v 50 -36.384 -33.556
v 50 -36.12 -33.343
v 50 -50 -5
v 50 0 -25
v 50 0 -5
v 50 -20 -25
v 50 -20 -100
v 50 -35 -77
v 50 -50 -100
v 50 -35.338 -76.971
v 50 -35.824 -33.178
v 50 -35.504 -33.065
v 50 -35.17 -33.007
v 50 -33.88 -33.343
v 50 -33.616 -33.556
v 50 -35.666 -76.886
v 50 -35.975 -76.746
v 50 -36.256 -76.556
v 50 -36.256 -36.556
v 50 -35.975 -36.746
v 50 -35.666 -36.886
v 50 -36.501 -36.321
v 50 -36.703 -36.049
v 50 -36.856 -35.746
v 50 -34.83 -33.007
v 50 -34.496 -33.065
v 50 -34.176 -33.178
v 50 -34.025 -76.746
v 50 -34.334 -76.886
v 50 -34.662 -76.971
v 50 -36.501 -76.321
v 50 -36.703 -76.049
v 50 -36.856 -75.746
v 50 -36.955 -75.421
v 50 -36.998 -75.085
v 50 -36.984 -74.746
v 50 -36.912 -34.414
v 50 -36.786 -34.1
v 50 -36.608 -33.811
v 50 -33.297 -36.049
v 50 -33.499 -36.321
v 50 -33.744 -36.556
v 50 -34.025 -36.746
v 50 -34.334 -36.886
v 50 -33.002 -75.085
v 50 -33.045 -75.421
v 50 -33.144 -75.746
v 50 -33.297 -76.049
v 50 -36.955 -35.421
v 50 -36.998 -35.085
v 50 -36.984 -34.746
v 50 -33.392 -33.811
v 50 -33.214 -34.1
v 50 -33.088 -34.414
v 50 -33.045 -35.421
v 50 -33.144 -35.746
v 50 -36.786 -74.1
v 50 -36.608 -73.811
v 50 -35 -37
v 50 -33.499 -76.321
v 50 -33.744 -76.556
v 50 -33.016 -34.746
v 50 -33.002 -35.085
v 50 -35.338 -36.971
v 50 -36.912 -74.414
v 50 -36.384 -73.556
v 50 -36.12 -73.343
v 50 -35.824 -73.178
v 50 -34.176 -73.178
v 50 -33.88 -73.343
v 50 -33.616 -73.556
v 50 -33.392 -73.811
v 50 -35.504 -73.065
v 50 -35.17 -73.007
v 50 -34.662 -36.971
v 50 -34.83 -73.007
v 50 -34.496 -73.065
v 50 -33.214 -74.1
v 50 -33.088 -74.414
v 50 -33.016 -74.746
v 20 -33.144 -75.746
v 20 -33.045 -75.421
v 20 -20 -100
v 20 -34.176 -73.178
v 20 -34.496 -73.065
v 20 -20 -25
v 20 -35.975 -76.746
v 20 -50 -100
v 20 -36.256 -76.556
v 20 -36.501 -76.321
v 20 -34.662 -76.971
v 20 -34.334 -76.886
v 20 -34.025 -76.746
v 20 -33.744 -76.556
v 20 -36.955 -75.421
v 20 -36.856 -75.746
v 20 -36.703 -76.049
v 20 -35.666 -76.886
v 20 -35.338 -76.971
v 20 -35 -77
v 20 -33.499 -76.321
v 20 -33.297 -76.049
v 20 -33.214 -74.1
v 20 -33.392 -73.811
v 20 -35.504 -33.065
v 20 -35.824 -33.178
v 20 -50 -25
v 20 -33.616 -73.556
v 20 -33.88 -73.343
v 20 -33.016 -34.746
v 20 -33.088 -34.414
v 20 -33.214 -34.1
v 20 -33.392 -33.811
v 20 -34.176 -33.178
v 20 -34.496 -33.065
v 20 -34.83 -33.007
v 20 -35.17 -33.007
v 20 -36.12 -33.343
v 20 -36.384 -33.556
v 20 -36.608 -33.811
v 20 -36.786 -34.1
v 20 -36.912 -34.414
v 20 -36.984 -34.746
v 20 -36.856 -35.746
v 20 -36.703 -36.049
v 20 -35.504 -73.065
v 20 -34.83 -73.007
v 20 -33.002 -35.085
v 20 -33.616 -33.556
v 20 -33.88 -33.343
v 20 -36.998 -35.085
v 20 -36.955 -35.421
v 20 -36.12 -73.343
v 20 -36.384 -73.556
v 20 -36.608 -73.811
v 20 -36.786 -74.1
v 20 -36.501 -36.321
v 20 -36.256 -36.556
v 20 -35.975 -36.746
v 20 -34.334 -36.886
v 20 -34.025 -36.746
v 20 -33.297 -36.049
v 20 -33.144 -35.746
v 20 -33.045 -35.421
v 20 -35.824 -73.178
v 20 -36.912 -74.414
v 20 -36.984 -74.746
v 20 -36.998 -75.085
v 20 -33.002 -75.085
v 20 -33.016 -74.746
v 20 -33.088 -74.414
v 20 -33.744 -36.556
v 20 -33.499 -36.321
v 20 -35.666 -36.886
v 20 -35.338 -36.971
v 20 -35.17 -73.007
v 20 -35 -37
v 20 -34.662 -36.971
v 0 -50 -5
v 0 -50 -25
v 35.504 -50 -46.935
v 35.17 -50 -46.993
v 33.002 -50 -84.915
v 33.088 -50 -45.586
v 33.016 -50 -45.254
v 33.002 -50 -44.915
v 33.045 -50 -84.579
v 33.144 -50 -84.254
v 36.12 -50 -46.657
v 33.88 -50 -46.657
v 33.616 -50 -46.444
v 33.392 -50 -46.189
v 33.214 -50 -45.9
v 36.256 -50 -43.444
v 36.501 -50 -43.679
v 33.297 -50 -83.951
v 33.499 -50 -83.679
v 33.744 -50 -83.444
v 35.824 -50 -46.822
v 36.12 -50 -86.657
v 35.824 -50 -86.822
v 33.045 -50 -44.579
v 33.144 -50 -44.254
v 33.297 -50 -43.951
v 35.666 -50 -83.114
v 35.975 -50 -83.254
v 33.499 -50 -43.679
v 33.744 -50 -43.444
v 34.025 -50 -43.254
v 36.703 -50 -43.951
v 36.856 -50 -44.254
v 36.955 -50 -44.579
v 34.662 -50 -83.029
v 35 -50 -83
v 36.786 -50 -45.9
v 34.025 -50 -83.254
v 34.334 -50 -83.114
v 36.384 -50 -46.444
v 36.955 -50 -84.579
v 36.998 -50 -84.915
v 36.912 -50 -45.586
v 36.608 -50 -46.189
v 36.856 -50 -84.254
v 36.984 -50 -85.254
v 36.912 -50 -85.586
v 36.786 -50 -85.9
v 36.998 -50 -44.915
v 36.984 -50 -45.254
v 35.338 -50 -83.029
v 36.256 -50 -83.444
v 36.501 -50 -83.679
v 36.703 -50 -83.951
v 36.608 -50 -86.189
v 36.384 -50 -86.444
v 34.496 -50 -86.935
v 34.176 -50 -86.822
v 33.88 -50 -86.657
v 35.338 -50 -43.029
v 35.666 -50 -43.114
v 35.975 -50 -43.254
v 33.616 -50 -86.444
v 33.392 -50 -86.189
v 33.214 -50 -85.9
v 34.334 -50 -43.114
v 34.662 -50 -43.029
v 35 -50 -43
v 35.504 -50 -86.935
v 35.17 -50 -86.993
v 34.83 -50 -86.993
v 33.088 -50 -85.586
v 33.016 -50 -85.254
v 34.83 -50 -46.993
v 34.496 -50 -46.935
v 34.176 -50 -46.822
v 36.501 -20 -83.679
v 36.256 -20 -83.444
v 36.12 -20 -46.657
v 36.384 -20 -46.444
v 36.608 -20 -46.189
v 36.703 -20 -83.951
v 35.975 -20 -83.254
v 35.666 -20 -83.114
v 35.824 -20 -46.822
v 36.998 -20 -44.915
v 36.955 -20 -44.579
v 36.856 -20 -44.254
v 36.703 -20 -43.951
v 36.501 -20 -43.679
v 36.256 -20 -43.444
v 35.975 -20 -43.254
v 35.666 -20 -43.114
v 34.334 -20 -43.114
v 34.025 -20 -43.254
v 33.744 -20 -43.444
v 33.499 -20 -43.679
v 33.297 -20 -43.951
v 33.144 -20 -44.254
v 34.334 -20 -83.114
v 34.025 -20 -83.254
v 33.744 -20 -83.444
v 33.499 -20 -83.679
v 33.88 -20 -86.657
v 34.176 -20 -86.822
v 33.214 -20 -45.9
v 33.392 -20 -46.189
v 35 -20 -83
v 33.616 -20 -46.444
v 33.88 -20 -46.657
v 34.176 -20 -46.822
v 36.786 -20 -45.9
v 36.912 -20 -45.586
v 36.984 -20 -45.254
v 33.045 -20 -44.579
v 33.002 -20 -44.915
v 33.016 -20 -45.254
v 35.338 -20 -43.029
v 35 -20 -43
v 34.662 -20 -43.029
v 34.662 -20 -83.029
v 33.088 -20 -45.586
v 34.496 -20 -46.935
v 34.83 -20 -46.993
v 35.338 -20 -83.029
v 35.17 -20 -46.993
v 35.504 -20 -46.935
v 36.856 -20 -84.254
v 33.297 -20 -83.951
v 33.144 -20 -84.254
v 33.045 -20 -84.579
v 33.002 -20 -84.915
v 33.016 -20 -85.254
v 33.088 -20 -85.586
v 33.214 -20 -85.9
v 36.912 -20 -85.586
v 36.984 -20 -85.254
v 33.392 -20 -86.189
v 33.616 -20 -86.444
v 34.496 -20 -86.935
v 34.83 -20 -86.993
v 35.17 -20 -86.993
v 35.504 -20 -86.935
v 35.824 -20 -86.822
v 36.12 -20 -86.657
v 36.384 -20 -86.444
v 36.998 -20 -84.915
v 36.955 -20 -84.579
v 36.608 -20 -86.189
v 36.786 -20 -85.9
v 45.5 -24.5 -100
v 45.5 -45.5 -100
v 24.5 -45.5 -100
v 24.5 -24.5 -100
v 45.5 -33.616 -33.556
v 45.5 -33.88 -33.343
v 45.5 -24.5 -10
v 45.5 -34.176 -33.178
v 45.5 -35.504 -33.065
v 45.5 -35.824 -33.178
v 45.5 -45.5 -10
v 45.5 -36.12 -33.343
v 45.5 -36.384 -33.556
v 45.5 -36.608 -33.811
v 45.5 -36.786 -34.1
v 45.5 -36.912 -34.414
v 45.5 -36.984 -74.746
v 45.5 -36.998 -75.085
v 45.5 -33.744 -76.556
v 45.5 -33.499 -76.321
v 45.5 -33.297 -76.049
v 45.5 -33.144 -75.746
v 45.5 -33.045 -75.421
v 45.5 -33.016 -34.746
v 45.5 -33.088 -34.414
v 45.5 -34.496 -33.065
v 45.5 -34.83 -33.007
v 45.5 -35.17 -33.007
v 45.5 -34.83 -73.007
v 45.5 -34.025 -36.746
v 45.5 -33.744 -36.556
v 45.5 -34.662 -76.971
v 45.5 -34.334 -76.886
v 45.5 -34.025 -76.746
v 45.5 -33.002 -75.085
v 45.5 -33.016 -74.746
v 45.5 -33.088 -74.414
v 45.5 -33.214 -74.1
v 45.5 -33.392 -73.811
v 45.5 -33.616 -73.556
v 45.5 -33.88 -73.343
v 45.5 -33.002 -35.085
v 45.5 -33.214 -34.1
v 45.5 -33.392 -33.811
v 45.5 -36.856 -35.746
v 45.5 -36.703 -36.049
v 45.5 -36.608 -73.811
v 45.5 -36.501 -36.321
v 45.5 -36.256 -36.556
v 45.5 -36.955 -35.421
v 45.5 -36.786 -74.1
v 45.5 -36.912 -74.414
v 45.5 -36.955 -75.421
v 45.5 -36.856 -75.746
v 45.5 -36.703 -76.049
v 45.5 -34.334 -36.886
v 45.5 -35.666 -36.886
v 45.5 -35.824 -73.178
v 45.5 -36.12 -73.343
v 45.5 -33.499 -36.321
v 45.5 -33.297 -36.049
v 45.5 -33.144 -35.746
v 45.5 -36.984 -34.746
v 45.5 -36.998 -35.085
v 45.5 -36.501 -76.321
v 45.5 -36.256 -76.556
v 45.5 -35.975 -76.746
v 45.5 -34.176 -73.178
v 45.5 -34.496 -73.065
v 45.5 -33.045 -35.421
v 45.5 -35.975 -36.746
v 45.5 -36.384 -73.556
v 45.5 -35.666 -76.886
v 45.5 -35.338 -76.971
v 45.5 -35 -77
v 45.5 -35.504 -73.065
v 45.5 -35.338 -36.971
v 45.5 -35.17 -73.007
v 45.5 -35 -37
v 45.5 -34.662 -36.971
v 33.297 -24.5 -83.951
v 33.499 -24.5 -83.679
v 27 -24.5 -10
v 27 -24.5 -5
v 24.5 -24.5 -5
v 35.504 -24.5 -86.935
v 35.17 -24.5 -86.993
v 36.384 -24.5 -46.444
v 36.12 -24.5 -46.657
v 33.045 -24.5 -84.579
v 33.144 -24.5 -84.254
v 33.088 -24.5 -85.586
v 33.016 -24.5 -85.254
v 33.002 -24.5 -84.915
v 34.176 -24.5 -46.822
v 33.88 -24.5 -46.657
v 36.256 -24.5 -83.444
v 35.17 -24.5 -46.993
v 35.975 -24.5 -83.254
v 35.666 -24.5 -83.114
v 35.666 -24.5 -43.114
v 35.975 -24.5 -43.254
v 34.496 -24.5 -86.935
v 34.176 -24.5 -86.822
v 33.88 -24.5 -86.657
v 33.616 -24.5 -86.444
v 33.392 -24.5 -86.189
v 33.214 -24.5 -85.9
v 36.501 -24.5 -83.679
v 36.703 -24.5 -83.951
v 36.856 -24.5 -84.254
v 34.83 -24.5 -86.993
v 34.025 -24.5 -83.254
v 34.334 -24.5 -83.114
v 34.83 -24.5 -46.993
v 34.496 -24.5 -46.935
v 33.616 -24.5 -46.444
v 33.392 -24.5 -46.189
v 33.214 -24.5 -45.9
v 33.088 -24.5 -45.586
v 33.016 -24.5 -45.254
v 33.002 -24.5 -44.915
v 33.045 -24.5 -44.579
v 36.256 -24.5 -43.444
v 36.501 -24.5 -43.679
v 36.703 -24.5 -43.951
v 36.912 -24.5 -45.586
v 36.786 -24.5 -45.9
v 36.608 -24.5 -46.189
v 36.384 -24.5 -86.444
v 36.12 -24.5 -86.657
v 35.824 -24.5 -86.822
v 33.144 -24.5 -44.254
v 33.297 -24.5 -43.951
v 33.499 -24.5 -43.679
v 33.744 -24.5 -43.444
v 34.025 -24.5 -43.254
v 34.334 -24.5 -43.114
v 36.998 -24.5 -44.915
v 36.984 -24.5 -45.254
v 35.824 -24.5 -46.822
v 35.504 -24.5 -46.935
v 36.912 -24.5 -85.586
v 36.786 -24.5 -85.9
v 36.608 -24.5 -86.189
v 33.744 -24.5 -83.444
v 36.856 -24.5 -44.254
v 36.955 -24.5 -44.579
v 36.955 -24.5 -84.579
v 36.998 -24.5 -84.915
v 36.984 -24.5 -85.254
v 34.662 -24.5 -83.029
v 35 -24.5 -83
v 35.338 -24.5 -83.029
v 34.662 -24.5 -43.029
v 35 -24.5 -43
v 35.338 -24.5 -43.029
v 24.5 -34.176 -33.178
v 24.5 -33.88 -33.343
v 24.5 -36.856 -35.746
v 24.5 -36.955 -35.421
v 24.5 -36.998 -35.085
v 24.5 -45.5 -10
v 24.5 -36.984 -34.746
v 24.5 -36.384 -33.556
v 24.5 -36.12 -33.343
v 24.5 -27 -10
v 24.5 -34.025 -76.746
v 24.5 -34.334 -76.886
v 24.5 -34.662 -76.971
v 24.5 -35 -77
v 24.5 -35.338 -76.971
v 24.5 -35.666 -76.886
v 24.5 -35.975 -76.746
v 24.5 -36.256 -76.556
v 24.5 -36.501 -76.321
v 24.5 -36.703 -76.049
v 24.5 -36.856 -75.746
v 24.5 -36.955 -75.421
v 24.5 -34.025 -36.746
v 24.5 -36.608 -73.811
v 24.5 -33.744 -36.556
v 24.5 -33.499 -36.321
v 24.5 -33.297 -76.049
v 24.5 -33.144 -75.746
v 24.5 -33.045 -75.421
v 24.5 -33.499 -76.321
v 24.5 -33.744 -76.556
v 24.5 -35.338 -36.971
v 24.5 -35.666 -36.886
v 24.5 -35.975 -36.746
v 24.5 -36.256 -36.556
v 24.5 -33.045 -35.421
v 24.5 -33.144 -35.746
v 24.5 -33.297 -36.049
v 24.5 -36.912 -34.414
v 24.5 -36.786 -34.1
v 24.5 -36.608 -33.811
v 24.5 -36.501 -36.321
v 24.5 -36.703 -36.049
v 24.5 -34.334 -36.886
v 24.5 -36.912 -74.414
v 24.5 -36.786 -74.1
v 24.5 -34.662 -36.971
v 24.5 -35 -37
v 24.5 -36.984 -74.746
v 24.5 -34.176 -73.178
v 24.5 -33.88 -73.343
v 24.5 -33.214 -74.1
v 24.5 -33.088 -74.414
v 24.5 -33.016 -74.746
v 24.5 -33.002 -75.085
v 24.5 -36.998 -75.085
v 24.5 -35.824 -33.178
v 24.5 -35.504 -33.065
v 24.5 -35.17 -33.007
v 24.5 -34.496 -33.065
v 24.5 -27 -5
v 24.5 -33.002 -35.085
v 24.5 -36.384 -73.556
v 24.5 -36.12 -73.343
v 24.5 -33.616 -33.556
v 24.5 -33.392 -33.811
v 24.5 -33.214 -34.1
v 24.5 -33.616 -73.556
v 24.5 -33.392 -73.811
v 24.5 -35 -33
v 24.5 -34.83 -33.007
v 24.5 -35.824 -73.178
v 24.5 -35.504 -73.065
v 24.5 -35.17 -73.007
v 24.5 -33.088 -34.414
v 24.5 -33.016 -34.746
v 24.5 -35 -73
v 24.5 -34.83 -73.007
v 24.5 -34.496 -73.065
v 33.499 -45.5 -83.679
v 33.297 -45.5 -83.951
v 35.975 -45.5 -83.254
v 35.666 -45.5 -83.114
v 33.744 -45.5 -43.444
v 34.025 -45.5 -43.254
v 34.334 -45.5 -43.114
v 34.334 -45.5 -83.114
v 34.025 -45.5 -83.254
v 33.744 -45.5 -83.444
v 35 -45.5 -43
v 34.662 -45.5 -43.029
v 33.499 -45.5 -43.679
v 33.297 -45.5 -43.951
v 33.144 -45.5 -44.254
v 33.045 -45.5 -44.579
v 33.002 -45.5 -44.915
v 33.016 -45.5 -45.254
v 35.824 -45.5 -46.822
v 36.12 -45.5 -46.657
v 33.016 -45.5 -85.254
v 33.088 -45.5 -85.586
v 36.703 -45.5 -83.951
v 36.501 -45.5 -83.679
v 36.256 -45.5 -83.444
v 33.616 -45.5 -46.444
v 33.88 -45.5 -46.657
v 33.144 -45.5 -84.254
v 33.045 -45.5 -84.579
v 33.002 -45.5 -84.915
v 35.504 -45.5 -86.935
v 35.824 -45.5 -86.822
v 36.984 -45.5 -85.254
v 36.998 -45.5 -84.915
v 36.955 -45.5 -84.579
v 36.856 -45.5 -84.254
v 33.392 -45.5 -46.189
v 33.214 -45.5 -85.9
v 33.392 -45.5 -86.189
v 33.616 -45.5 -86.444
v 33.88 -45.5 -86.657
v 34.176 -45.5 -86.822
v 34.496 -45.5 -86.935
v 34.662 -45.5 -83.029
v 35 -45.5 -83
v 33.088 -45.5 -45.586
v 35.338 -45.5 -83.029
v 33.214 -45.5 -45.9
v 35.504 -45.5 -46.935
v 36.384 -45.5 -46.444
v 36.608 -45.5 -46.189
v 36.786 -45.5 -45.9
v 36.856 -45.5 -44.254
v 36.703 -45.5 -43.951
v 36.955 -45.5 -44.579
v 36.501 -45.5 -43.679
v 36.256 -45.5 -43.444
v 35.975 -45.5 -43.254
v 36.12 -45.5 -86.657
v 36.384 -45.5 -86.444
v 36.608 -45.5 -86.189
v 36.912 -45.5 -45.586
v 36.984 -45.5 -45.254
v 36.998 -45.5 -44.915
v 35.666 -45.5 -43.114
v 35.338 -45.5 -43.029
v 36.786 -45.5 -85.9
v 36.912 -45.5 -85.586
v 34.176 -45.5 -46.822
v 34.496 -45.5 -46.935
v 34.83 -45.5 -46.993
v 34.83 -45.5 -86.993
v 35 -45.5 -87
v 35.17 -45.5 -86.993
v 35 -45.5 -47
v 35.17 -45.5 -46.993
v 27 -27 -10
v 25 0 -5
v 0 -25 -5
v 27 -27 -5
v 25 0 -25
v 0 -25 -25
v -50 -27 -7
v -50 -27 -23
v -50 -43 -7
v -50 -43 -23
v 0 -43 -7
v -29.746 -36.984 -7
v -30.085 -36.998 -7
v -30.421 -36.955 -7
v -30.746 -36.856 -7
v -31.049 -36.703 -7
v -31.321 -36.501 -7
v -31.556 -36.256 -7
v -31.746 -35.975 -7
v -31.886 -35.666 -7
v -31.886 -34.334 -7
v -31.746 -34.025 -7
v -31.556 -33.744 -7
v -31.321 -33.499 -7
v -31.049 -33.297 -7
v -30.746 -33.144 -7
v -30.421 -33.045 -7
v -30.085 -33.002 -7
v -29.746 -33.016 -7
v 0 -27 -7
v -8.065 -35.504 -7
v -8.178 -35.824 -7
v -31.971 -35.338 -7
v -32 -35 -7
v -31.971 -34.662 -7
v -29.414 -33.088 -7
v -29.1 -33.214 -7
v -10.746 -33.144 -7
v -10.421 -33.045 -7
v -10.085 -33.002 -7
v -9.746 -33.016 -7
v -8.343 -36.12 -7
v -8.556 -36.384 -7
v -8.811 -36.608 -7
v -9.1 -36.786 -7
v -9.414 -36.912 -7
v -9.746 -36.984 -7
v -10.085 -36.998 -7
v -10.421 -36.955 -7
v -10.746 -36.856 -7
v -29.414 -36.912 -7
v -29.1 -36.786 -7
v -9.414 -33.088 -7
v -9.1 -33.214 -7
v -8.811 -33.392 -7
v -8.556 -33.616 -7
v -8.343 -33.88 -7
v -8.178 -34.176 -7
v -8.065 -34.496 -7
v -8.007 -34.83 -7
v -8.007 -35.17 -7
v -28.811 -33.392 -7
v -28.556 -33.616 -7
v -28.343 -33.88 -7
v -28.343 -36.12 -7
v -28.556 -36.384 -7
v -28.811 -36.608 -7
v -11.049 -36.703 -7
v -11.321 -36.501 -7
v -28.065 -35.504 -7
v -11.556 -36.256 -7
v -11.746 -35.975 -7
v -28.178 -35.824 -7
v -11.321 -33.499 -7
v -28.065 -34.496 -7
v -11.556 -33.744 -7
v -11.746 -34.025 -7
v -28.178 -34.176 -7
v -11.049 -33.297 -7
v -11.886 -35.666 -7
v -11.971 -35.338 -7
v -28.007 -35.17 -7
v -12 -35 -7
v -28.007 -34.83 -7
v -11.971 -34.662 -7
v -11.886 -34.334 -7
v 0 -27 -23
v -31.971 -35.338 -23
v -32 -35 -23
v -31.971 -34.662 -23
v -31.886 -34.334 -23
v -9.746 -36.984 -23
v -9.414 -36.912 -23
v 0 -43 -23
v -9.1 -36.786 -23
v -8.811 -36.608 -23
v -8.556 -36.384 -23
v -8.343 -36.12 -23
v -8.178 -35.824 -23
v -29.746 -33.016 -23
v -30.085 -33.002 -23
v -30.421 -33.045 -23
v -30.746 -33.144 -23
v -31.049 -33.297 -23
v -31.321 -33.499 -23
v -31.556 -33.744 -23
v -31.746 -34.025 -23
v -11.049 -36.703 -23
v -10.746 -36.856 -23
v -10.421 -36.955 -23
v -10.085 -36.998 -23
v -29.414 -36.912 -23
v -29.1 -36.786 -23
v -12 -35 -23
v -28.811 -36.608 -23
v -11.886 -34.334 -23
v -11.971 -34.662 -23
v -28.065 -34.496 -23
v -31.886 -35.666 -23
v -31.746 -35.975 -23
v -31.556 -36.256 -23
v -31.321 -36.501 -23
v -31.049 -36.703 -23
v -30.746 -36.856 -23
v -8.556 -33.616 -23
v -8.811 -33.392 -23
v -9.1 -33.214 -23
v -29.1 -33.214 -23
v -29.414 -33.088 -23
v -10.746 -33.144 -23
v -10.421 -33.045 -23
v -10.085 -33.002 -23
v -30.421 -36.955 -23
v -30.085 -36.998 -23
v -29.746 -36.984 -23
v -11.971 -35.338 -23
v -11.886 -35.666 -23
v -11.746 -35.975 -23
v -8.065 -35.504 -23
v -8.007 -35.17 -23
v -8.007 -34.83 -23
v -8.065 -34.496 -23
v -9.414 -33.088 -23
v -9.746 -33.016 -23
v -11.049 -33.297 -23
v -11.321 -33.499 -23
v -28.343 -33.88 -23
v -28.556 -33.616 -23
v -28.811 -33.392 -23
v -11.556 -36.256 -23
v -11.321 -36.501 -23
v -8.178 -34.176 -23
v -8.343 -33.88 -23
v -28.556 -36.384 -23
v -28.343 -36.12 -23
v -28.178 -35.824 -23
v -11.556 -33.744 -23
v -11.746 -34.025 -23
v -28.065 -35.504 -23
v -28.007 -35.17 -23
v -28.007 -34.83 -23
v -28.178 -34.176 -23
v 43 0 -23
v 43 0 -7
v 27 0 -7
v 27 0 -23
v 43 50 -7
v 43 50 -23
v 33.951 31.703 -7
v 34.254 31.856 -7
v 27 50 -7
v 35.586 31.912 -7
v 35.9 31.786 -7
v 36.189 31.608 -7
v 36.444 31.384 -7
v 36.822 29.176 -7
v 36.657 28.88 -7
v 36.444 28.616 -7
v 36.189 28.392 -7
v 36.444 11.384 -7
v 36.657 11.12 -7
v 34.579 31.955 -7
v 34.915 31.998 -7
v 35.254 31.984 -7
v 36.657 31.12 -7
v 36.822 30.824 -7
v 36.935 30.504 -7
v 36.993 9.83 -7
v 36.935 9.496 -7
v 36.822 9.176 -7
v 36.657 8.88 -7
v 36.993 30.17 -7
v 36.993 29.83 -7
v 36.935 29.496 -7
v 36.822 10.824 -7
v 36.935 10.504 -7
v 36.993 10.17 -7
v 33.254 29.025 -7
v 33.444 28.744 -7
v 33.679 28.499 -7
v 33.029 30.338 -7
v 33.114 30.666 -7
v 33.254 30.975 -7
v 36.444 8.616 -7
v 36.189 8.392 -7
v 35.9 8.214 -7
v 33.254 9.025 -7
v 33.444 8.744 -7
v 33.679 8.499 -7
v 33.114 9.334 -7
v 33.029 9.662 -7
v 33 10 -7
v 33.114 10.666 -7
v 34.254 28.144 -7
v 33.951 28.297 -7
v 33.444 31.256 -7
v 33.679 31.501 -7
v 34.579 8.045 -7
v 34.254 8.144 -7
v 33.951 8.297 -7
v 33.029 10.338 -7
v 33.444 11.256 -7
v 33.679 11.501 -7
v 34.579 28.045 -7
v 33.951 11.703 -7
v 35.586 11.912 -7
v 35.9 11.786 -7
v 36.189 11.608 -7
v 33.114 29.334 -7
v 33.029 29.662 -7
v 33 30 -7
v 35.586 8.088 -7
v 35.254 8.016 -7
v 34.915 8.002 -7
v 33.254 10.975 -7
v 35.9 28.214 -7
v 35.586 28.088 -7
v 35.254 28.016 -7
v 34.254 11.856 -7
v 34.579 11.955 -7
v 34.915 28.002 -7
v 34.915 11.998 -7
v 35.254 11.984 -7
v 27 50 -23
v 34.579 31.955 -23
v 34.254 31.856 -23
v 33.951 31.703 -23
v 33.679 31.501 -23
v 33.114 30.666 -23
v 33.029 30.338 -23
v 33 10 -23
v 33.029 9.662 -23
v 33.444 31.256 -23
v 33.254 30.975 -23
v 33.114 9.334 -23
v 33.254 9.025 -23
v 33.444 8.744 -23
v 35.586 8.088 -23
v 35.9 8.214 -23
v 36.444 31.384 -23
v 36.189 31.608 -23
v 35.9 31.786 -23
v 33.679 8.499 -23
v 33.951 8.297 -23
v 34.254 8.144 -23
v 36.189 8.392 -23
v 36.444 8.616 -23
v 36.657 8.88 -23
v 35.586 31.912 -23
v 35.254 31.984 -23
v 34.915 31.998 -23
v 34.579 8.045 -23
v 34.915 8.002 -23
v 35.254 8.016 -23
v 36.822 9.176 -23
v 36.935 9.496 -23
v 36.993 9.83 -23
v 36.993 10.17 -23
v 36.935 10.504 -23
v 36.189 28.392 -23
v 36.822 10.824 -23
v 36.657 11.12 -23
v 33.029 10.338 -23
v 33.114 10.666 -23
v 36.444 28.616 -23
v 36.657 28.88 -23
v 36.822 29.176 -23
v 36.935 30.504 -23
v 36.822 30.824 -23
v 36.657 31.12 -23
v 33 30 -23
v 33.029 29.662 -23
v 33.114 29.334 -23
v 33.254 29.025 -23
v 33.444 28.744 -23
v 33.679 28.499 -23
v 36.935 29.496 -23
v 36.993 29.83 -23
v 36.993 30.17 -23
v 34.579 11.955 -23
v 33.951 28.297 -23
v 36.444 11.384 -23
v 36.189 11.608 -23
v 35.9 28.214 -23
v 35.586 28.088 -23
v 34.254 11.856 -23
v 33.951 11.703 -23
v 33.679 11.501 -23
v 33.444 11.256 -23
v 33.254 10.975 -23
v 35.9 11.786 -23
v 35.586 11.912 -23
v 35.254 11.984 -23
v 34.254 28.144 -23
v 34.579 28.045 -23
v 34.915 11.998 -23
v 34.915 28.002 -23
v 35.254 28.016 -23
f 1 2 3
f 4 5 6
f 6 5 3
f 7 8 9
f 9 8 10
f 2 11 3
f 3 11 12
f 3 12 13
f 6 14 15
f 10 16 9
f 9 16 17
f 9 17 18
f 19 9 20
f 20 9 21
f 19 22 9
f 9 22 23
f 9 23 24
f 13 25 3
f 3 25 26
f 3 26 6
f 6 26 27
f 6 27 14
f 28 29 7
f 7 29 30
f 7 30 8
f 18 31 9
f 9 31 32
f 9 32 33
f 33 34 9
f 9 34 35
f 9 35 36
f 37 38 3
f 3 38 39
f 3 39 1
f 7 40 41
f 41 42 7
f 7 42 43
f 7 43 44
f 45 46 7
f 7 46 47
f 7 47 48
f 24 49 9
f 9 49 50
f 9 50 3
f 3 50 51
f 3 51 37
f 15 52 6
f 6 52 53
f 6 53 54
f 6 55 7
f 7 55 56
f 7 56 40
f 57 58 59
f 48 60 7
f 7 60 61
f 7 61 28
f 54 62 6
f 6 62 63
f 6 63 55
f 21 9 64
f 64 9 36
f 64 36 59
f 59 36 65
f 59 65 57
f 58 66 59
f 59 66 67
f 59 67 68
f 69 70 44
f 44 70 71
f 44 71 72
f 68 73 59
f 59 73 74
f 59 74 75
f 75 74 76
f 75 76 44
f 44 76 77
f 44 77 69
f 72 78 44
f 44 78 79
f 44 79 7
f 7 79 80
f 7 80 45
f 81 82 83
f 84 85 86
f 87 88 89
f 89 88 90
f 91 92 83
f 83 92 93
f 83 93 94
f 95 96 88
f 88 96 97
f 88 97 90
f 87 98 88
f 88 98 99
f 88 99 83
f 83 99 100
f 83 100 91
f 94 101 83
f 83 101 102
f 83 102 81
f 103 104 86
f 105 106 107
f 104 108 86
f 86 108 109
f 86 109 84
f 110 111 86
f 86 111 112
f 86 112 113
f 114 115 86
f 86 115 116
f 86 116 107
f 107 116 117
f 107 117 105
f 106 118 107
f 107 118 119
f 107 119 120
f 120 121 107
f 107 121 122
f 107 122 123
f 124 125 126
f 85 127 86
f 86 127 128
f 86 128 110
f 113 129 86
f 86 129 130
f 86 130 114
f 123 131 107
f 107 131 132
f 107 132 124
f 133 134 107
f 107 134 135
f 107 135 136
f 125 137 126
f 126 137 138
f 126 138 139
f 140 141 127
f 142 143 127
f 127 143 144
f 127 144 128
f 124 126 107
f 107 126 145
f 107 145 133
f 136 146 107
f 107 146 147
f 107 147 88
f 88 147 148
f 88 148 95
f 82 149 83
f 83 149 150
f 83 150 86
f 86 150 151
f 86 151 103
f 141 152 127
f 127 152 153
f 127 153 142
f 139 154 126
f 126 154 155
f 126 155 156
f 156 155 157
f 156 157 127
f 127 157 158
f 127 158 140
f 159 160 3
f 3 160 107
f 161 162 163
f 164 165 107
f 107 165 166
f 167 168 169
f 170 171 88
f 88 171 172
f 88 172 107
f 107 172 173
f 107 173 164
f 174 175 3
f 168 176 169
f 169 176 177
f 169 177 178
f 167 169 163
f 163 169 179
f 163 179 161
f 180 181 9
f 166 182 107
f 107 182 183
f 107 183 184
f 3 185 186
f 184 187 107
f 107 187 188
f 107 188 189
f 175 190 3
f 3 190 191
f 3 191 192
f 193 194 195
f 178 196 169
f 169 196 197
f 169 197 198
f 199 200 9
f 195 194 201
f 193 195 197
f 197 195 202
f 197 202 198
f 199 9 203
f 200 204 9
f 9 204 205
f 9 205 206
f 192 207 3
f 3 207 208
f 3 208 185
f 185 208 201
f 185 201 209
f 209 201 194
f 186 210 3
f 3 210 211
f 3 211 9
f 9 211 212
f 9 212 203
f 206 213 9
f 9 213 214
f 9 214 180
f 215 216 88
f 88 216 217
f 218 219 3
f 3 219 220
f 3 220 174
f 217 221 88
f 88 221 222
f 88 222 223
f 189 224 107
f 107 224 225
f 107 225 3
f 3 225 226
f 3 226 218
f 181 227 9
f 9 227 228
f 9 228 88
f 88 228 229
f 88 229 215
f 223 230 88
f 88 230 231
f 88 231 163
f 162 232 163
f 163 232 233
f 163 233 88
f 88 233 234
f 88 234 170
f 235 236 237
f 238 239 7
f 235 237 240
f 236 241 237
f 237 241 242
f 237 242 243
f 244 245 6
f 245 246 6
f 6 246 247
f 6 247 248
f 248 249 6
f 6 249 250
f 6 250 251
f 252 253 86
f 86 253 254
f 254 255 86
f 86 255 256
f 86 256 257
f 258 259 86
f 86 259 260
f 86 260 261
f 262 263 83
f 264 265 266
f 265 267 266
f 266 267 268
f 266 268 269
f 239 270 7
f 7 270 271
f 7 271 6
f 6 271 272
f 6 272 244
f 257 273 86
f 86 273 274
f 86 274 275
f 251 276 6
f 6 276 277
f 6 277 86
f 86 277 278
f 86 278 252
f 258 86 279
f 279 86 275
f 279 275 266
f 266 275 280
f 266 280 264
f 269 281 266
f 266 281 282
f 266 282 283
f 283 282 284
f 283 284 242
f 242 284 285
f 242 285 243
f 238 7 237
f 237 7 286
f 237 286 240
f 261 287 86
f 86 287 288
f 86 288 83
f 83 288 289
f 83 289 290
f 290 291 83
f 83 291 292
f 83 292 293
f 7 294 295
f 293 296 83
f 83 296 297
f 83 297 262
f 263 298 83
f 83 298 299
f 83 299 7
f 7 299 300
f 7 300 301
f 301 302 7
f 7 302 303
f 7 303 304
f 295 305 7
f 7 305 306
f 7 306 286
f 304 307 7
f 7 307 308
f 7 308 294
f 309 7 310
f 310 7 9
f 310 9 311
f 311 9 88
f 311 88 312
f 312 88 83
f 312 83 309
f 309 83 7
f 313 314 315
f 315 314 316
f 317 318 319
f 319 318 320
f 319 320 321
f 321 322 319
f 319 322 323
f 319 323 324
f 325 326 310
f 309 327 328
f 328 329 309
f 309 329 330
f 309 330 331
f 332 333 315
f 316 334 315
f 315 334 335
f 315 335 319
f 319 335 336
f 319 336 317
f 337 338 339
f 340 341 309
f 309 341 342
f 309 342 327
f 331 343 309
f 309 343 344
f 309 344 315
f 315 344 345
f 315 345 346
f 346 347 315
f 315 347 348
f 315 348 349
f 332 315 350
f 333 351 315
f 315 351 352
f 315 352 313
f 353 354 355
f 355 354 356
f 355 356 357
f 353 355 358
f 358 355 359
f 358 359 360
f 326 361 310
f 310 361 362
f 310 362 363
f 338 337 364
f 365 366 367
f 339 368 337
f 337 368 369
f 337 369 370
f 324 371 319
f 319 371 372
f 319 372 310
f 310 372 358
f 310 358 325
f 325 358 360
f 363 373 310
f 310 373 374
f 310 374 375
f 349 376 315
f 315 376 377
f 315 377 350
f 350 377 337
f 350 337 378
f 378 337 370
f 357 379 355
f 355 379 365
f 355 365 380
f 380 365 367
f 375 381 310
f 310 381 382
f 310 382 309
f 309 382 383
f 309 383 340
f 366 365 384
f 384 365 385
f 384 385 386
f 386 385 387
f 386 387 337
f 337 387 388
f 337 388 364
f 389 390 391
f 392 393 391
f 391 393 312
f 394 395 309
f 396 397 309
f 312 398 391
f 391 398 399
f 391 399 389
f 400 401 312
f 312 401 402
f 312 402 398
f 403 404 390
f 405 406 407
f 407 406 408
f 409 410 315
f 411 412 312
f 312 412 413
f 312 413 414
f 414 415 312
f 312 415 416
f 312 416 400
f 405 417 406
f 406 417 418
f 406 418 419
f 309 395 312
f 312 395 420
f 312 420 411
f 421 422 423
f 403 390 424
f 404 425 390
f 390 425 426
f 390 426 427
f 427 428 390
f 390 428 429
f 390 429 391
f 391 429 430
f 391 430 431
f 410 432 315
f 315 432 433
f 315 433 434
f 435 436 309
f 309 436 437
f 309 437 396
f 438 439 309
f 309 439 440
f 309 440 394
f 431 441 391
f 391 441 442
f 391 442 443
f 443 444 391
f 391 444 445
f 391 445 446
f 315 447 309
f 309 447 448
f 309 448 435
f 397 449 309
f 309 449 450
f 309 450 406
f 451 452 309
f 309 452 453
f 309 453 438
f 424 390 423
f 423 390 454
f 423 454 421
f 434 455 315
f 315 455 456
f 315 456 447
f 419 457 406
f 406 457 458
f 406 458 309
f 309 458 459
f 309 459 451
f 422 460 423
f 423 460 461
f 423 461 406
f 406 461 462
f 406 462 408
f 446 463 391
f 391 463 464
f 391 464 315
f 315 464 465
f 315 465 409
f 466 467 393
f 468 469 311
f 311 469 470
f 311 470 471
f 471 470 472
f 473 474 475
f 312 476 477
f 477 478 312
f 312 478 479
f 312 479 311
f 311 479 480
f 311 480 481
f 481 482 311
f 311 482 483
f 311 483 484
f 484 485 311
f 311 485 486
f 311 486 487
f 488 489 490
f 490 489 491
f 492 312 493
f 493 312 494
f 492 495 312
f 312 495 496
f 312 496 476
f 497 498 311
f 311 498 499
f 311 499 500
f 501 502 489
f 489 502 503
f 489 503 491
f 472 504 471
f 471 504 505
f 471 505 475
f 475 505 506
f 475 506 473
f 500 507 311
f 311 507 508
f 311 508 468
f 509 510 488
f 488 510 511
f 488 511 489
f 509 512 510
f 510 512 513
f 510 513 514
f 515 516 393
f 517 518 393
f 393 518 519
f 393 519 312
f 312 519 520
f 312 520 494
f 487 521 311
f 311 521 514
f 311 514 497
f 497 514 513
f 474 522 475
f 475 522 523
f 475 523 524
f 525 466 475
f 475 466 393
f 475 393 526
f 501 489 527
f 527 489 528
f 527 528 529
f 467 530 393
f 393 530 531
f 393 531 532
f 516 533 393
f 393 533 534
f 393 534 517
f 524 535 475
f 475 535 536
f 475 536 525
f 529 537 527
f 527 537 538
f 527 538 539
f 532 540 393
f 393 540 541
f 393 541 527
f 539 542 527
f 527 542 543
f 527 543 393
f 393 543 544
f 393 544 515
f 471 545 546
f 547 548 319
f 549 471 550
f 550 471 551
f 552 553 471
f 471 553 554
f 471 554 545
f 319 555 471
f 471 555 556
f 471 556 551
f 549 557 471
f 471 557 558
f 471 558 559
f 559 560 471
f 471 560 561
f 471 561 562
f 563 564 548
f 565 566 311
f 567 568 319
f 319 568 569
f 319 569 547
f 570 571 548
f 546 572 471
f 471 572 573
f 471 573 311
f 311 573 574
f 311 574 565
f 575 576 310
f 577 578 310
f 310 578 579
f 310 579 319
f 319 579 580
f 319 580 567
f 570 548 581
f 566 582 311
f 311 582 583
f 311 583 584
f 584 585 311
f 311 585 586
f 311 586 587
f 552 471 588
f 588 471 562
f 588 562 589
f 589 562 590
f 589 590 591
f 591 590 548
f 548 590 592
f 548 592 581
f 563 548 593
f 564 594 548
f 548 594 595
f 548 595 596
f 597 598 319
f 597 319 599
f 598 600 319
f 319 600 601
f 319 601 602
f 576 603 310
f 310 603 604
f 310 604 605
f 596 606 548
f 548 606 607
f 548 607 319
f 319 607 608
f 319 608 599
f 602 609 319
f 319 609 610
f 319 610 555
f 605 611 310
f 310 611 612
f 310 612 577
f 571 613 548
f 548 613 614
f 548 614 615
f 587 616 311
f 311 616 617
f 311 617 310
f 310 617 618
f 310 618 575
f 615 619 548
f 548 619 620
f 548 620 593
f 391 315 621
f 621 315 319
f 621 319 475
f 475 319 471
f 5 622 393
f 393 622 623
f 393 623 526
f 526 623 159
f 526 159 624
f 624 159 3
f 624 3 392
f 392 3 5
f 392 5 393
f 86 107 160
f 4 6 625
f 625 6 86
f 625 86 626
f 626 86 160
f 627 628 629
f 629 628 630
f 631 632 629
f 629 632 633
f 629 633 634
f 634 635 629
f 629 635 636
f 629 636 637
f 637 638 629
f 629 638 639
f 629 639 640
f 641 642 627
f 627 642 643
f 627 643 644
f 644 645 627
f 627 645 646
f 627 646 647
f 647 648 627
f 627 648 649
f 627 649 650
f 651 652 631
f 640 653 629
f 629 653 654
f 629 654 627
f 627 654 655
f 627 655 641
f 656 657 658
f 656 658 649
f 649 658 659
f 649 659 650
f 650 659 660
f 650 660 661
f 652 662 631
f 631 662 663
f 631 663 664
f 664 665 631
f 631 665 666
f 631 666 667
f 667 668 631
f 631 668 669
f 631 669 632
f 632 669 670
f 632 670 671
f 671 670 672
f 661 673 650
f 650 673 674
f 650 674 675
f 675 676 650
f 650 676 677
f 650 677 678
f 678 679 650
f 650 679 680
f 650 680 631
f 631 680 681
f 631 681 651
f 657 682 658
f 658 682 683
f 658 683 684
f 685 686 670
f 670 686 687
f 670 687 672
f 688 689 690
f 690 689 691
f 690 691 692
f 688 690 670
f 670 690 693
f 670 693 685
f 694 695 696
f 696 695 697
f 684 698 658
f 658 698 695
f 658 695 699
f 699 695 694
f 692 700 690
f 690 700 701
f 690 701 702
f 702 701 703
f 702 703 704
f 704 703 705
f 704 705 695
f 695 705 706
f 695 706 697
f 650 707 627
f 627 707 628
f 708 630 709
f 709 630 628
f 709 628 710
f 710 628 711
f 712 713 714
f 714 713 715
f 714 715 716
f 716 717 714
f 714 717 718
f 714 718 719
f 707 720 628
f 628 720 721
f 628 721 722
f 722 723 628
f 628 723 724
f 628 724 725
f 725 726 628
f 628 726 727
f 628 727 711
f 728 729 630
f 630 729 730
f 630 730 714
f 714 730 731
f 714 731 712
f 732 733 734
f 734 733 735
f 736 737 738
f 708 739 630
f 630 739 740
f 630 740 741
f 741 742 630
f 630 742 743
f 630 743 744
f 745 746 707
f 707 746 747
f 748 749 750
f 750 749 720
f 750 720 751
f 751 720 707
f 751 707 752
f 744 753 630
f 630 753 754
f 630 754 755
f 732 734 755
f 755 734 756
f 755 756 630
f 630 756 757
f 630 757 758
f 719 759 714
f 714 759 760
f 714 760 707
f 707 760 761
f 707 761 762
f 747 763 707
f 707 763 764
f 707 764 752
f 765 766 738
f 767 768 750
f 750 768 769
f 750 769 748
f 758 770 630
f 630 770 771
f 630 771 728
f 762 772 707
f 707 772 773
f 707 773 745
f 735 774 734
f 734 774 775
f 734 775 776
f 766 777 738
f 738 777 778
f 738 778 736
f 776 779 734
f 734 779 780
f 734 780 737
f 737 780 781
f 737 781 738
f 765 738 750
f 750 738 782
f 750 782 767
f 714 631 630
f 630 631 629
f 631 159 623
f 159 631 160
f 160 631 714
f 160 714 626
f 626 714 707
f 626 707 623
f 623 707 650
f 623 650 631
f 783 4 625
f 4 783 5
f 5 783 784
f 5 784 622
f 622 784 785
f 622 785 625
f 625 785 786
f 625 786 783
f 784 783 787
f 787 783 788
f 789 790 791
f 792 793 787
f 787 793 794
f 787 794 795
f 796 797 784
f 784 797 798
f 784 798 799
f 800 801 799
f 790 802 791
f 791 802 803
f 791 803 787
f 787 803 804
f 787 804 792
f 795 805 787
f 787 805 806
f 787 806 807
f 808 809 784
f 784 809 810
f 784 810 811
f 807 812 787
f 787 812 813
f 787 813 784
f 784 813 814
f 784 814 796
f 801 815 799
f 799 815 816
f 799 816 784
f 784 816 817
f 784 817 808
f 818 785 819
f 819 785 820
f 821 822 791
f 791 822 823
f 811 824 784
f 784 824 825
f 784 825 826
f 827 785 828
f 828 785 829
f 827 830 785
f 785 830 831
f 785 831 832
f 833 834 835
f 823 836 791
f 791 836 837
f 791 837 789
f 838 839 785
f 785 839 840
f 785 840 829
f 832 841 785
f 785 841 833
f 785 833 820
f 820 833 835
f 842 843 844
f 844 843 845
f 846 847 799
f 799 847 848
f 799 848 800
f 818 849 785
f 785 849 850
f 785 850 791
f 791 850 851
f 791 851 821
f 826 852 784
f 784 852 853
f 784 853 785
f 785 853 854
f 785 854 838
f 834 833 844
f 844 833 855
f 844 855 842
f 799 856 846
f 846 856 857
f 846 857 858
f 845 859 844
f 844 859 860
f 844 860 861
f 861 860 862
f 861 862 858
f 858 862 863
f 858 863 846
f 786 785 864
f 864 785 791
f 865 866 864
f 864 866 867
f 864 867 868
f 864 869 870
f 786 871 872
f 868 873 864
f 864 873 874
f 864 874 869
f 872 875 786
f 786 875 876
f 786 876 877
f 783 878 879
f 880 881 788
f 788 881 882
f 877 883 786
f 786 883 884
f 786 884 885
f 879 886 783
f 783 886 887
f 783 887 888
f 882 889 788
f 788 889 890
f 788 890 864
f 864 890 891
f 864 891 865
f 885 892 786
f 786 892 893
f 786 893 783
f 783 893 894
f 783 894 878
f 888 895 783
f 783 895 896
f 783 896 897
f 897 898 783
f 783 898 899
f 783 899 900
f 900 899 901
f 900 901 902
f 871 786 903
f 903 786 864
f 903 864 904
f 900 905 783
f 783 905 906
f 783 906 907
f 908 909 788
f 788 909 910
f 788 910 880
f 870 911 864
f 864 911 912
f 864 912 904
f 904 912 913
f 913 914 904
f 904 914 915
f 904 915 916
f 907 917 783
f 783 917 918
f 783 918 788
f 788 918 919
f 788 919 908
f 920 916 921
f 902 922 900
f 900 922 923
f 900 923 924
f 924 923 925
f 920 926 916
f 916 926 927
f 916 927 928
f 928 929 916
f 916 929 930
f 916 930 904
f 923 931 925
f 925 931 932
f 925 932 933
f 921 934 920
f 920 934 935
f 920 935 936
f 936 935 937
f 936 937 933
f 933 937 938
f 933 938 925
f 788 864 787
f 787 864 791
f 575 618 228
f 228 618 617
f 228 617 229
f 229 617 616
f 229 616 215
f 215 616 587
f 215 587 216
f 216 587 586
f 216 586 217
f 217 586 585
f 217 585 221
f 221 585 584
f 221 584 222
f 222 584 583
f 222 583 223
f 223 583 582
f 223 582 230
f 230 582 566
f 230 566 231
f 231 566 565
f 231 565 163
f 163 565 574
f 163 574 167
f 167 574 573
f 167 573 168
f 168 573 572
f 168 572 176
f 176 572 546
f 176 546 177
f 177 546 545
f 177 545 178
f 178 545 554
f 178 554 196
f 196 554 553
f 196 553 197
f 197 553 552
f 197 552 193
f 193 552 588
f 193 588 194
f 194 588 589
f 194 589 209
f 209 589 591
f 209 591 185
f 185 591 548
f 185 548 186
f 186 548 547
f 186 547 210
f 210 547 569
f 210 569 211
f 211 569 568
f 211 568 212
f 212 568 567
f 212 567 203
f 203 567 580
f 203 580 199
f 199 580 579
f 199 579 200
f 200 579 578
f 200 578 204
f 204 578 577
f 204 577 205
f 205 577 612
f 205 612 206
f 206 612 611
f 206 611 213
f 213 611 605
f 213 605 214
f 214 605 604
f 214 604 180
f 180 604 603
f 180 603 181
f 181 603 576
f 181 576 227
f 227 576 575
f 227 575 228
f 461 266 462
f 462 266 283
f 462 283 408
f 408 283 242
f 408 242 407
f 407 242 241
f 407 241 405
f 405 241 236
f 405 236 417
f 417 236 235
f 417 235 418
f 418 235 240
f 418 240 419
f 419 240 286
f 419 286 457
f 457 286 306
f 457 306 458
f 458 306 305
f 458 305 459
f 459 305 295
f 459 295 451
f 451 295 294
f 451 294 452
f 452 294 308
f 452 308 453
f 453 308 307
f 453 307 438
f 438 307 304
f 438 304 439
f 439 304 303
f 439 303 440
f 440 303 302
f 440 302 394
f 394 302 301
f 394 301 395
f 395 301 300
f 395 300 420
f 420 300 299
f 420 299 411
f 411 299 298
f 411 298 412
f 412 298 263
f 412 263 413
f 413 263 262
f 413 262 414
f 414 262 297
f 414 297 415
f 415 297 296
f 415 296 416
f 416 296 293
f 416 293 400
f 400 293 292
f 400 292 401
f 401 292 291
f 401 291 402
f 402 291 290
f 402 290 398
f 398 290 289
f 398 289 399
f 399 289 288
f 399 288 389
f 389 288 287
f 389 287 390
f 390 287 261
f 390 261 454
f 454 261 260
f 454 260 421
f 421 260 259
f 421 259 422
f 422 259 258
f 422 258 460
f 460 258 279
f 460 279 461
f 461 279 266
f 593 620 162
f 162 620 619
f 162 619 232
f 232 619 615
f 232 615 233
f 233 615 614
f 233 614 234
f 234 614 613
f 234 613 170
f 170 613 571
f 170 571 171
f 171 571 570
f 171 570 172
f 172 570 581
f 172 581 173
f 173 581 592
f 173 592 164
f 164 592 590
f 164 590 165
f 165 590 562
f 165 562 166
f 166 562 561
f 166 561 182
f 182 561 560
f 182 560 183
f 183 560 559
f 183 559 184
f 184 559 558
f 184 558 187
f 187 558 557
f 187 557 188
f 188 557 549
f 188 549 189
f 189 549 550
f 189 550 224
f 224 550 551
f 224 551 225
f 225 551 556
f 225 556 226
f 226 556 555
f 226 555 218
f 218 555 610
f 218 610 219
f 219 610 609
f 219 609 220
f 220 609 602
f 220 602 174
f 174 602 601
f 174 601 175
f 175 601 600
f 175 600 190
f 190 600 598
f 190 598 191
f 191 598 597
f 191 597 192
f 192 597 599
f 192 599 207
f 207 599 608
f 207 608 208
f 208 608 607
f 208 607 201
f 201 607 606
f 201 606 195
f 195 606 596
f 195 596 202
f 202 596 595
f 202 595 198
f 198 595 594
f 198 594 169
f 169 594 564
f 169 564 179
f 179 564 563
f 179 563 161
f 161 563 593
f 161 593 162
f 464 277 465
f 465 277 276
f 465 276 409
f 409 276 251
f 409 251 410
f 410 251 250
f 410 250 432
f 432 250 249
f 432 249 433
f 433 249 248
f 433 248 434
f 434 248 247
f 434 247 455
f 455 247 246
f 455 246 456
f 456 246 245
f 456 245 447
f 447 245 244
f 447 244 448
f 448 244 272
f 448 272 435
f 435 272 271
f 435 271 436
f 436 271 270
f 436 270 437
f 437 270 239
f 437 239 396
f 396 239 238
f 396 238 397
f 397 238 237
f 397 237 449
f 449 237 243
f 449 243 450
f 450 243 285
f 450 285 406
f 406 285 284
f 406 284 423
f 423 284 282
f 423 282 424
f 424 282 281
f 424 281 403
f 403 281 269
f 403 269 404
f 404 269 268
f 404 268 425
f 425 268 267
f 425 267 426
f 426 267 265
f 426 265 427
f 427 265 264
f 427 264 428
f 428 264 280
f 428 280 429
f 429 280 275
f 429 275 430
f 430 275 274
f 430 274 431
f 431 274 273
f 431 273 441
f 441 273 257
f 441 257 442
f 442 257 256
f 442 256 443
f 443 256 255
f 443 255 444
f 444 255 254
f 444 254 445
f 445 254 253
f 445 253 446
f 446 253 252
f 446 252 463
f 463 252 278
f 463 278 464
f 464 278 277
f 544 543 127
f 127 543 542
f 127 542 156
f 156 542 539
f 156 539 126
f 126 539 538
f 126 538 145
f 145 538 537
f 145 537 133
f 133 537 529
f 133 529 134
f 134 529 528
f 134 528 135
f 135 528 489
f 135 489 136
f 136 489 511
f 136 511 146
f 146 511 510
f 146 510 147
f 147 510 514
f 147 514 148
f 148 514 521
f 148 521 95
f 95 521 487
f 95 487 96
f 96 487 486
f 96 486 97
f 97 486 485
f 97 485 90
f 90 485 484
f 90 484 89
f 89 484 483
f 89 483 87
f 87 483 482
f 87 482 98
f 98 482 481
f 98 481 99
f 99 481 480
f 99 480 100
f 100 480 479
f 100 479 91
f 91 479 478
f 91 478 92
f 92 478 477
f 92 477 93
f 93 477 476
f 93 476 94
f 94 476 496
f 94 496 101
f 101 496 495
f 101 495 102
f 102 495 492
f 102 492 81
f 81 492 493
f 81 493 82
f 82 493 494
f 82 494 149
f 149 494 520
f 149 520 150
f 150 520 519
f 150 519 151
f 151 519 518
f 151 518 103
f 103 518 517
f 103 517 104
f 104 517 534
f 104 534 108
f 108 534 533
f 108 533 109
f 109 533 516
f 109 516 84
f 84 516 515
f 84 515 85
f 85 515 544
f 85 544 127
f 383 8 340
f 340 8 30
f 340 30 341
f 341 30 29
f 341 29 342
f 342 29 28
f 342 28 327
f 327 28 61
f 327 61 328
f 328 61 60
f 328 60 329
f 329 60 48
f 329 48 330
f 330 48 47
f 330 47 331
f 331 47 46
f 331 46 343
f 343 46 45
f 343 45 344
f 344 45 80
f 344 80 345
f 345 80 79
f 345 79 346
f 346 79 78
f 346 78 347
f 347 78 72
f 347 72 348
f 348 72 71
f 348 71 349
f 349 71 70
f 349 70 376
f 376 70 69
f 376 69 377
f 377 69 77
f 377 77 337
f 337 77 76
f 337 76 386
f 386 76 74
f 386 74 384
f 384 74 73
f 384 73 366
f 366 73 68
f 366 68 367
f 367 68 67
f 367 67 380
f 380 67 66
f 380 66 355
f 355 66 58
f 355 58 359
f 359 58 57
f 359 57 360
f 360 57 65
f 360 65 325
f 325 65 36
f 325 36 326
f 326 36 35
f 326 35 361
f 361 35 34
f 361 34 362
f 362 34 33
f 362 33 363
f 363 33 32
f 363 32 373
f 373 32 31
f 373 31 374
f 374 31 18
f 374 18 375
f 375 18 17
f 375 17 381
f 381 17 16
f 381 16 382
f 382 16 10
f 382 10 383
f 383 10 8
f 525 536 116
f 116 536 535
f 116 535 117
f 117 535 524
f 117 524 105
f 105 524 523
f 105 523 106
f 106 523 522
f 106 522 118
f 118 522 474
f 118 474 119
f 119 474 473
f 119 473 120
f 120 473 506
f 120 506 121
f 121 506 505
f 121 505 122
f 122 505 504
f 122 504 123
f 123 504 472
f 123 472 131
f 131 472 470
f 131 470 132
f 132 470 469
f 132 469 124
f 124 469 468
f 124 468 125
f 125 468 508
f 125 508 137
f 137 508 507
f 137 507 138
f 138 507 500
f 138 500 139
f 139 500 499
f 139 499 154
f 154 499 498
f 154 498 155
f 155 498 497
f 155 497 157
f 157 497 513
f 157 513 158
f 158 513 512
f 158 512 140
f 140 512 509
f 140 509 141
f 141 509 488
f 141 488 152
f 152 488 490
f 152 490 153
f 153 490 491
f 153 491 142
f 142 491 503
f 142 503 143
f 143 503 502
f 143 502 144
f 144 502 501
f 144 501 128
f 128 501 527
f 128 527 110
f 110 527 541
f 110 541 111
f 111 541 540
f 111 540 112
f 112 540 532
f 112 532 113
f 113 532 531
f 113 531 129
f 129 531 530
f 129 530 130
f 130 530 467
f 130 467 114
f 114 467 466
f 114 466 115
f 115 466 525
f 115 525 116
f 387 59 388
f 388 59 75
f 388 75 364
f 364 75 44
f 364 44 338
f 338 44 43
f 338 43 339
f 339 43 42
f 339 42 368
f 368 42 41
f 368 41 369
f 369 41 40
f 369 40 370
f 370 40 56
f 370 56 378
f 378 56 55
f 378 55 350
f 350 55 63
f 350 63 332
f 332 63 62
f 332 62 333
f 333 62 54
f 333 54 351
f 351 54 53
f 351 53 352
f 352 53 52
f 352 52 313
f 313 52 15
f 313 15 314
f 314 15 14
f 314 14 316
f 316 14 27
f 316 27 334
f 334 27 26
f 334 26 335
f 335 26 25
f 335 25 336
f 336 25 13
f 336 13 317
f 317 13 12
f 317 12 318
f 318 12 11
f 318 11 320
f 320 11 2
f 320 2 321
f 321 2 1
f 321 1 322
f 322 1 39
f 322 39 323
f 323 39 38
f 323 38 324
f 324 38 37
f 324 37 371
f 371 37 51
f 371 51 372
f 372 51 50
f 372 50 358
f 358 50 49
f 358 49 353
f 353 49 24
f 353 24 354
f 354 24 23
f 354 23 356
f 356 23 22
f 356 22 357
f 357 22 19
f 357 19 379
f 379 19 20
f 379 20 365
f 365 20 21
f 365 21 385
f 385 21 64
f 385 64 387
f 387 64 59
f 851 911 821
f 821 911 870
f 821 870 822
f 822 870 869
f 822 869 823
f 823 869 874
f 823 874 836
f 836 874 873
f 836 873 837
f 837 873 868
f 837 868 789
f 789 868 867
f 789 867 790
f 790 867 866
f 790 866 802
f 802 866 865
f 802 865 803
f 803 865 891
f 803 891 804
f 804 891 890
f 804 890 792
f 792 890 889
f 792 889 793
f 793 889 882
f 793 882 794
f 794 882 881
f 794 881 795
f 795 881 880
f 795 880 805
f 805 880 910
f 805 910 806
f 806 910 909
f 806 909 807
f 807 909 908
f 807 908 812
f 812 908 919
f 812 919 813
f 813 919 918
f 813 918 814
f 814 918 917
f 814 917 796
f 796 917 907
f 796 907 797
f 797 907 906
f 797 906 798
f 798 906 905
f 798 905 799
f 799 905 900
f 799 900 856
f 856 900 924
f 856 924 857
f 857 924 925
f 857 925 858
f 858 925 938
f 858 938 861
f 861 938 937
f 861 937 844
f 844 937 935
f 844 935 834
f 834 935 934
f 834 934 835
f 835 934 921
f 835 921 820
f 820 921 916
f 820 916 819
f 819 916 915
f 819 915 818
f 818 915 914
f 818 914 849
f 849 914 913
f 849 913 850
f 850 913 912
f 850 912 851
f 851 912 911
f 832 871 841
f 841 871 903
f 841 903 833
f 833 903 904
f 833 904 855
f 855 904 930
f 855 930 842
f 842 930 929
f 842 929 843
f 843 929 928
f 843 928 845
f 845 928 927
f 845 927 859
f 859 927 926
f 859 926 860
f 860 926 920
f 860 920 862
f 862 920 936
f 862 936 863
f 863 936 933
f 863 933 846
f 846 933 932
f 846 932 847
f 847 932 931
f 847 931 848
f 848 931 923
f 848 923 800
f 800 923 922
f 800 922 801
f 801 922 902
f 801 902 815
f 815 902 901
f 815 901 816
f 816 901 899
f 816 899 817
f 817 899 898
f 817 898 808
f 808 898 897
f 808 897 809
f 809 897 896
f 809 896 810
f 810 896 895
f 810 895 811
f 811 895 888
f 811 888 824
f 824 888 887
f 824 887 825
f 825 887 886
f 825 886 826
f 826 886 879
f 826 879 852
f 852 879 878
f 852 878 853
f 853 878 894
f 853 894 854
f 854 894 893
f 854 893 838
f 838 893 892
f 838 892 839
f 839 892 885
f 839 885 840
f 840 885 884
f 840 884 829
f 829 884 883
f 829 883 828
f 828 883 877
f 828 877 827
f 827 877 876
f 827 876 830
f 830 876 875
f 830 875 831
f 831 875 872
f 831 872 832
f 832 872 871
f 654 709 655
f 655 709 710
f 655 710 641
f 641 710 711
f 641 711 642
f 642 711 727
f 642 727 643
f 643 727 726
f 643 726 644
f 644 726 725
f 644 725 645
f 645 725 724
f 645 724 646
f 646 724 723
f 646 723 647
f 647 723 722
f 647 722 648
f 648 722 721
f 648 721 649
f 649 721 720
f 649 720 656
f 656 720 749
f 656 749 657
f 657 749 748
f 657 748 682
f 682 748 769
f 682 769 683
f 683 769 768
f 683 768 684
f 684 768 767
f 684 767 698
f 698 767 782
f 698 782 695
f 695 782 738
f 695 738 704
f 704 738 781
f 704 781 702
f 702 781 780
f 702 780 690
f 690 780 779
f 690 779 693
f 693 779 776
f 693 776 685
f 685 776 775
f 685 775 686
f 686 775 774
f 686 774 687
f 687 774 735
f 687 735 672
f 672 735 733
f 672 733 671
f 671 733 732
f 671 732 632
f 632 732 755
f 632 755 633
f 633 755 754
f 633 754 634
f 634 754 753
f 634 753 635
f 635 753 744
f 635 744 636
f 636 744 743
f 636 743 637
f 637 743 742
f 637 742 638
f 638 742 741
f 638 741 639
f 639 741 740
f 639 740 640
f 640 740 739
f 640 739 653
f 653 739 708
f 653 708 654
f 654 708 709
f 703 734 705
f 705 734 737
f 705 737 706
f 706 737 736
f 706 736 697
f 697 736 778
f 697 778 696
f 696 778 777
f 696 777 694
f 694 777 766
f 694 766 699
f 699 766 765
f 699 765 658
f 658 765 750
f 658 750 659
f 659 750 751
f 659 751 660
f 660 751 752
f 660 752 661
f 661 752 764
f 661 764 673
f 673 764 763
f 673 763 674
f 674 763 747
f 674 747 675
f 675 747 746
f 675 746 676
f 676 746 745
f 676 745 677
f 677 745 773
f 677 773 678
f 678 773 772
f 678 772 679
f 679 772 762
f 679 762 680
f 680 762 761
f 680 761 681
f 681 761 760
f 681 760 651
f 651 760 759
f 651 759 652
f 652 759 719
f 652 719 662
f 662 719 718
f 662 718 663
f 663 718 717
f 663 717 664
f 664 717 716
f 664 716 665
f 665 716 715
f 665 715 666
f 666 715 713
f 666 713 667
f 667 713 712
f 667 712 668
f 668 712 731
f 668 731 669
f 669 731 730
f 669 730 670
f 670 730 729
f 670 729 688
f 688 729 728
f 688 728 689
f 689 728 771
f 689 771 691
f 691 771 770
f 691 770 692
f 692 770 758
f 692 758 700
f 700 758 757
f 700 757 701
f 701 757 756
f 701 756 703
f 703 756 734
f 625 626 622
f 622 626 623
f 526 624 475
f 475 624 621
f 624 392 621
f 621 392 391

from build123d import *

# Parameters (mm, degrees)
SKETCH1_W           = 100
SKETCH1_H           = 100
BOSS_EXTRUDE1_DEPTH = 100
CUT_EXTRUDE16_DEPTH = 70
SKETCH8_W           = 70
SKETCH8_H           = 70
CUT_EXTRUDE17_DEPTH = 30
SKETCH9_W           = 21
SKETCH9_H           = 21
CUT_EXTRUDE20_DEPTH = 90
SKETCH10_W          = 30
SKETCH10_H          = 30
SKETCH10_W_2        = 16
SKETCH10_H_2        = 16
CUT_EXTRUDE21_DEPTH = 50
SKETCH11_W          = 30
SKETCH11_H          = 30
SKETCH11_W_2        = 20
SKETCH11_H_2        = 20
CUT_EXTRUDE22_DEPTH = 20
SKETCH12_W          = 30
SKETCH12_H          = 30
SKETCH12_W_2        = 20
SKETCH12_H_2        = 20
CUT_EXTRUDE23_DEPTH = 70
SKETCH13_W          = 20
SKETCH13_H          = 20
SKETCH13_W_2        = 16
SKETCH13_H_2        = 16
CUT_EXTRUDE24_DEPTH = 50
SKETCH15_R          = 2
CUT_EXTRUDE25_DEPTH = 30
SKETCH16_R          = 2
CUT_EXTRUDE26_DEPTH = 30
SKETCH17_R          = 2
CUT_EXTRUDE27_DEPTH = 16
SKETCH18_R          = 2
CUT_EXTRUDE29_DEPTH = 16
SKETCH19_W          = 30
SKETCH19_H          = 30
CUT_EXTRUDE30_DEPTH = 5
BOSS_EXTRUDE2_DEPTH = 20
SKETCH21_W          = 20
SKETCH21_H          = 7
BOSS_EXTRUDE6_DEPTH = 24
SKETCH22_W          = 2.5
SKETCH22_H          = 2.5
CUT_EXTRUDE31_DEPTH = 20
SKETCH23_W          = 7
SKETCH23_H          = 20
BOSS_EXTRUDE7_DEPTH = 24


with BuildPart() as part:
    # Sketch1 → Boss-Extrude1 (new body)
    with BuildSketch(Plane.XY):
        Rectangle(SKETCH1_W, SKETCH1_H)
    extrude(amount=-BOSS_EXTRUDE1_DEPTH)

    # Sketch5 → Cut-Extrude16 (cut)
    with BuildSketch(Plane(origin=(0, 0, -100), x_dir=(-1, 0, 0), z_dir=(0, 0, -1))):
        Polygon((50, -50), (50, 50), (-50, 50), (-50, -20), (-20, -20), (-20, -50), align=None)
    extrude(amount=-CUT_EXTRUDE16_DEPTH, mode=Mode.SUBTRACT)

    # Sketch8 → Cut-Extrude17 (cut)
    with BuildSketch(Plane(origin=(0, 0, -30), x_dir=(-1, 0, 0), z_dir=(0, 0, -1))):
        with Locations((15, 15)):
            Rectangle(SKETCH8_W, SKETCH8_H)
    extrude(amount=-CUT_EXTRUDE17_DEPTH, mode=Mode.SUBTRACT)

    # Sketch9 → Cut-Extrude20 (cut)
    with BuildSketch(Plane(origin=(0, 0, -100), x_dir=(-1, 0, 0), z_dir=(0, 0, -1))):
        with Locations((-35, -35)):
            Rectangle(SKETCH9_W, SKETCH9_H)
    extrude(amount=-CUT_EXTRUDE20_DEPTH, mode=Mode.SUBTRACT)

    # Sketch10 → Cut-Extrude21 (cut)
    with BuildSketch(Plane.ZY.offset(50)):
        with Locations((-15, -35)):
            Rectangle(SKETCH10_W, SKETCH10_H)
        with Locations((-15, -35)):
            Rectangle(SKETCH10_W_2, SKETCH10_H_2, mode=Mode.SUBTRACT)
    extrude(amount=-CUT_EXTRUDE21_DEPTH, mode=Mode.SUBTRACT)

    # Sketch11 → Cut-Extrude22 (cut)
    with BuildSketch(Plane.ZY):
        with Locations((-15, -35)):
            Rectangle(SKETCH11_W, SKETCH11_H)
        with Locations((-15, -35)):
            Rectangle(SKETCH11_W_2, SKETCH11_H_2, mode=Mode.SUBTRACT)
    extrude(amount=-CUT_EXTRUDE22_DEPTH, mode=Mode.SUBTRACT)

    # Sketch12 → Cut-Extrude23 (cut)
    with BuildSketch(Plane(origin=(0, 50, 0), x_dir=(1, 0, 0), z_dir=(0, 1, 0))):
        with Locations((35, 15)):
            Rectangle(SKETCH12_W, SKETCH12_H)
        with Locations((35, 15)):
            Rectangle(SKETCH12_W_2, SKETCH12_H_2, mode=Mode.SUBTRACT)
    extrude(amount=-CUT_EXTRUDE23_DEPTH, mode=Mode.SUBTRACT)

    # Sketch13 → Cut-Extrude24 (cut)
    with BuildSketch(Plane(origin=(0, 50, 0), x_dir=(1, 0, 0), z_dir=(0, 1, 0))):
        with Locations((35, 15)):
            Rectangle(SKETCH13_W, SKETCH13_H)
        with Locations((35, 15)):
            Rectangle(SKETCH13_W_2, SKETCH13_H_2, mode=Mode.SUBTRACT)
    extrude(amount=-CUT_EXTRUDE24_DEPTH, mode=Mode.SUBTRACT)

    # Sketch15 → Cut-Extrude25 (cut)
    with BuildSketch(Plane(origin=(0, -20, 0), x_dir=(1, 0, 0), z_dir=(0, 1, 0))):
        with Locations(Location((35, 85, 0), (0, 0, 270))):
            Circle(SKETCH15_R)
        with Locations(Location((35, 45, 0), (0, 0, 270))):
            Circle(SKETCH15_R)
    extrude(amount=-CUT_EXTRUDE25_DEPTH, mode=Mode.SUBTRACT)

    # Sketch16 → Cut-Extrude26 (cut)
    with BuildSketch(Plane(origin=(50, 0, 0), x_dir=(0, 0, -1), z_dir=(1, 0, 0))):
        with Locations((75, -35)):
            Circle(SKETCH16_R)
        with Locations((35, -35)):
            Circle(SKETCH16_R)
    extrude(amount=-CUT_EXTRUDE26_DEPTH, mode=Mode.SUBTRACT)

    # Sketch17 → Cut-Extrude27 (cut)
    with BuildSketch(Plane(origin=(0, 0, -23), x_dir=(-1, 0, 0), z_dir=(0, 0, -1))):
        with Locations((-35, 30)):
            Circle(SKETCH17_R)
        with Locations((-35, 10)):
            Circle(SKETCH17_R)
    extrude(amount=-CUT_EXTRUDE27_DEPTH, mode=Mode.SUBTRACT)

    # Sketch18 → Cut-Extrude29 (cut)
    with BuildSketch(Plane(origin=(0, 0, -23), x_dir=(-1, 0, 0), z_dir=(0, 0, -1))):
        with Locations((30, -35)):
            Circle(SKETCH18_R)
        with Locations((10, -35)):
            Circle(SKETCH18_R)
    extrude(amount=-CUT_EXTRUDE29_DEPTH, mode=Mode.SUBTRACT)

    # Sketch19 → Cut-Extrude30 (cut)
    with BuildSketch(Plane.XY):
        with Locations((35, -35)):
            Rectangle(SKETCH19_W, SKETCH19_H)
    extrude(amount=-CUT_EXTRUDE30_DEPTH, mode=Mode.SUBTRACT)

    # Sketch20 → Boss-Extrude2 (add)
    with BuildSketch(Plane.XY.offset(-5)):
        Polygon((25, 0), (0, -25), (0, -27), (27, -27), (27, 0), align=None)
    extrude(amount=-BOSS_EXTRUDE2_DEPTH)

    # Sketch21 → Boss-Extrude6 (add)
    with BuildSketch(Plane.ZY):
        with Locations((-15, -46.5)):
            Rectangle(SKETCH21_W, SKETCH21_H)
    extrude(amount=-BOSS_EXTRUDE6_DEPTH)

    # Sketch22 → Cut-Extrude31 (cut)
    with BuildSketch(Plane(origin=(0, 0, -25), x_dir=(-1, 0, 0), z_dir=(0, 0, -1))):
        with Locations((-25.75, -25.75)):
            Rectangle(SKETCH22_W, SKETCH22_H)
    extrude(amount=-CUT_EXTRUDE31_DEPTH, mode=Mode.SUBTRACT)

    # Sketch23 → Boss-Extrude7 (add)
    with BuildSketch(Plane(origin=(0, 0, 0), x_dir=(1, 0, 0), z_dir=(0, 1, 0))):
        with Locations((46.5, 15)):
            Rectangle(SKETCH23_W, SKETCH23_H)
    extrude(amount=-BOSS_EXTRUDE7_DEPTH)


solid = part.part
